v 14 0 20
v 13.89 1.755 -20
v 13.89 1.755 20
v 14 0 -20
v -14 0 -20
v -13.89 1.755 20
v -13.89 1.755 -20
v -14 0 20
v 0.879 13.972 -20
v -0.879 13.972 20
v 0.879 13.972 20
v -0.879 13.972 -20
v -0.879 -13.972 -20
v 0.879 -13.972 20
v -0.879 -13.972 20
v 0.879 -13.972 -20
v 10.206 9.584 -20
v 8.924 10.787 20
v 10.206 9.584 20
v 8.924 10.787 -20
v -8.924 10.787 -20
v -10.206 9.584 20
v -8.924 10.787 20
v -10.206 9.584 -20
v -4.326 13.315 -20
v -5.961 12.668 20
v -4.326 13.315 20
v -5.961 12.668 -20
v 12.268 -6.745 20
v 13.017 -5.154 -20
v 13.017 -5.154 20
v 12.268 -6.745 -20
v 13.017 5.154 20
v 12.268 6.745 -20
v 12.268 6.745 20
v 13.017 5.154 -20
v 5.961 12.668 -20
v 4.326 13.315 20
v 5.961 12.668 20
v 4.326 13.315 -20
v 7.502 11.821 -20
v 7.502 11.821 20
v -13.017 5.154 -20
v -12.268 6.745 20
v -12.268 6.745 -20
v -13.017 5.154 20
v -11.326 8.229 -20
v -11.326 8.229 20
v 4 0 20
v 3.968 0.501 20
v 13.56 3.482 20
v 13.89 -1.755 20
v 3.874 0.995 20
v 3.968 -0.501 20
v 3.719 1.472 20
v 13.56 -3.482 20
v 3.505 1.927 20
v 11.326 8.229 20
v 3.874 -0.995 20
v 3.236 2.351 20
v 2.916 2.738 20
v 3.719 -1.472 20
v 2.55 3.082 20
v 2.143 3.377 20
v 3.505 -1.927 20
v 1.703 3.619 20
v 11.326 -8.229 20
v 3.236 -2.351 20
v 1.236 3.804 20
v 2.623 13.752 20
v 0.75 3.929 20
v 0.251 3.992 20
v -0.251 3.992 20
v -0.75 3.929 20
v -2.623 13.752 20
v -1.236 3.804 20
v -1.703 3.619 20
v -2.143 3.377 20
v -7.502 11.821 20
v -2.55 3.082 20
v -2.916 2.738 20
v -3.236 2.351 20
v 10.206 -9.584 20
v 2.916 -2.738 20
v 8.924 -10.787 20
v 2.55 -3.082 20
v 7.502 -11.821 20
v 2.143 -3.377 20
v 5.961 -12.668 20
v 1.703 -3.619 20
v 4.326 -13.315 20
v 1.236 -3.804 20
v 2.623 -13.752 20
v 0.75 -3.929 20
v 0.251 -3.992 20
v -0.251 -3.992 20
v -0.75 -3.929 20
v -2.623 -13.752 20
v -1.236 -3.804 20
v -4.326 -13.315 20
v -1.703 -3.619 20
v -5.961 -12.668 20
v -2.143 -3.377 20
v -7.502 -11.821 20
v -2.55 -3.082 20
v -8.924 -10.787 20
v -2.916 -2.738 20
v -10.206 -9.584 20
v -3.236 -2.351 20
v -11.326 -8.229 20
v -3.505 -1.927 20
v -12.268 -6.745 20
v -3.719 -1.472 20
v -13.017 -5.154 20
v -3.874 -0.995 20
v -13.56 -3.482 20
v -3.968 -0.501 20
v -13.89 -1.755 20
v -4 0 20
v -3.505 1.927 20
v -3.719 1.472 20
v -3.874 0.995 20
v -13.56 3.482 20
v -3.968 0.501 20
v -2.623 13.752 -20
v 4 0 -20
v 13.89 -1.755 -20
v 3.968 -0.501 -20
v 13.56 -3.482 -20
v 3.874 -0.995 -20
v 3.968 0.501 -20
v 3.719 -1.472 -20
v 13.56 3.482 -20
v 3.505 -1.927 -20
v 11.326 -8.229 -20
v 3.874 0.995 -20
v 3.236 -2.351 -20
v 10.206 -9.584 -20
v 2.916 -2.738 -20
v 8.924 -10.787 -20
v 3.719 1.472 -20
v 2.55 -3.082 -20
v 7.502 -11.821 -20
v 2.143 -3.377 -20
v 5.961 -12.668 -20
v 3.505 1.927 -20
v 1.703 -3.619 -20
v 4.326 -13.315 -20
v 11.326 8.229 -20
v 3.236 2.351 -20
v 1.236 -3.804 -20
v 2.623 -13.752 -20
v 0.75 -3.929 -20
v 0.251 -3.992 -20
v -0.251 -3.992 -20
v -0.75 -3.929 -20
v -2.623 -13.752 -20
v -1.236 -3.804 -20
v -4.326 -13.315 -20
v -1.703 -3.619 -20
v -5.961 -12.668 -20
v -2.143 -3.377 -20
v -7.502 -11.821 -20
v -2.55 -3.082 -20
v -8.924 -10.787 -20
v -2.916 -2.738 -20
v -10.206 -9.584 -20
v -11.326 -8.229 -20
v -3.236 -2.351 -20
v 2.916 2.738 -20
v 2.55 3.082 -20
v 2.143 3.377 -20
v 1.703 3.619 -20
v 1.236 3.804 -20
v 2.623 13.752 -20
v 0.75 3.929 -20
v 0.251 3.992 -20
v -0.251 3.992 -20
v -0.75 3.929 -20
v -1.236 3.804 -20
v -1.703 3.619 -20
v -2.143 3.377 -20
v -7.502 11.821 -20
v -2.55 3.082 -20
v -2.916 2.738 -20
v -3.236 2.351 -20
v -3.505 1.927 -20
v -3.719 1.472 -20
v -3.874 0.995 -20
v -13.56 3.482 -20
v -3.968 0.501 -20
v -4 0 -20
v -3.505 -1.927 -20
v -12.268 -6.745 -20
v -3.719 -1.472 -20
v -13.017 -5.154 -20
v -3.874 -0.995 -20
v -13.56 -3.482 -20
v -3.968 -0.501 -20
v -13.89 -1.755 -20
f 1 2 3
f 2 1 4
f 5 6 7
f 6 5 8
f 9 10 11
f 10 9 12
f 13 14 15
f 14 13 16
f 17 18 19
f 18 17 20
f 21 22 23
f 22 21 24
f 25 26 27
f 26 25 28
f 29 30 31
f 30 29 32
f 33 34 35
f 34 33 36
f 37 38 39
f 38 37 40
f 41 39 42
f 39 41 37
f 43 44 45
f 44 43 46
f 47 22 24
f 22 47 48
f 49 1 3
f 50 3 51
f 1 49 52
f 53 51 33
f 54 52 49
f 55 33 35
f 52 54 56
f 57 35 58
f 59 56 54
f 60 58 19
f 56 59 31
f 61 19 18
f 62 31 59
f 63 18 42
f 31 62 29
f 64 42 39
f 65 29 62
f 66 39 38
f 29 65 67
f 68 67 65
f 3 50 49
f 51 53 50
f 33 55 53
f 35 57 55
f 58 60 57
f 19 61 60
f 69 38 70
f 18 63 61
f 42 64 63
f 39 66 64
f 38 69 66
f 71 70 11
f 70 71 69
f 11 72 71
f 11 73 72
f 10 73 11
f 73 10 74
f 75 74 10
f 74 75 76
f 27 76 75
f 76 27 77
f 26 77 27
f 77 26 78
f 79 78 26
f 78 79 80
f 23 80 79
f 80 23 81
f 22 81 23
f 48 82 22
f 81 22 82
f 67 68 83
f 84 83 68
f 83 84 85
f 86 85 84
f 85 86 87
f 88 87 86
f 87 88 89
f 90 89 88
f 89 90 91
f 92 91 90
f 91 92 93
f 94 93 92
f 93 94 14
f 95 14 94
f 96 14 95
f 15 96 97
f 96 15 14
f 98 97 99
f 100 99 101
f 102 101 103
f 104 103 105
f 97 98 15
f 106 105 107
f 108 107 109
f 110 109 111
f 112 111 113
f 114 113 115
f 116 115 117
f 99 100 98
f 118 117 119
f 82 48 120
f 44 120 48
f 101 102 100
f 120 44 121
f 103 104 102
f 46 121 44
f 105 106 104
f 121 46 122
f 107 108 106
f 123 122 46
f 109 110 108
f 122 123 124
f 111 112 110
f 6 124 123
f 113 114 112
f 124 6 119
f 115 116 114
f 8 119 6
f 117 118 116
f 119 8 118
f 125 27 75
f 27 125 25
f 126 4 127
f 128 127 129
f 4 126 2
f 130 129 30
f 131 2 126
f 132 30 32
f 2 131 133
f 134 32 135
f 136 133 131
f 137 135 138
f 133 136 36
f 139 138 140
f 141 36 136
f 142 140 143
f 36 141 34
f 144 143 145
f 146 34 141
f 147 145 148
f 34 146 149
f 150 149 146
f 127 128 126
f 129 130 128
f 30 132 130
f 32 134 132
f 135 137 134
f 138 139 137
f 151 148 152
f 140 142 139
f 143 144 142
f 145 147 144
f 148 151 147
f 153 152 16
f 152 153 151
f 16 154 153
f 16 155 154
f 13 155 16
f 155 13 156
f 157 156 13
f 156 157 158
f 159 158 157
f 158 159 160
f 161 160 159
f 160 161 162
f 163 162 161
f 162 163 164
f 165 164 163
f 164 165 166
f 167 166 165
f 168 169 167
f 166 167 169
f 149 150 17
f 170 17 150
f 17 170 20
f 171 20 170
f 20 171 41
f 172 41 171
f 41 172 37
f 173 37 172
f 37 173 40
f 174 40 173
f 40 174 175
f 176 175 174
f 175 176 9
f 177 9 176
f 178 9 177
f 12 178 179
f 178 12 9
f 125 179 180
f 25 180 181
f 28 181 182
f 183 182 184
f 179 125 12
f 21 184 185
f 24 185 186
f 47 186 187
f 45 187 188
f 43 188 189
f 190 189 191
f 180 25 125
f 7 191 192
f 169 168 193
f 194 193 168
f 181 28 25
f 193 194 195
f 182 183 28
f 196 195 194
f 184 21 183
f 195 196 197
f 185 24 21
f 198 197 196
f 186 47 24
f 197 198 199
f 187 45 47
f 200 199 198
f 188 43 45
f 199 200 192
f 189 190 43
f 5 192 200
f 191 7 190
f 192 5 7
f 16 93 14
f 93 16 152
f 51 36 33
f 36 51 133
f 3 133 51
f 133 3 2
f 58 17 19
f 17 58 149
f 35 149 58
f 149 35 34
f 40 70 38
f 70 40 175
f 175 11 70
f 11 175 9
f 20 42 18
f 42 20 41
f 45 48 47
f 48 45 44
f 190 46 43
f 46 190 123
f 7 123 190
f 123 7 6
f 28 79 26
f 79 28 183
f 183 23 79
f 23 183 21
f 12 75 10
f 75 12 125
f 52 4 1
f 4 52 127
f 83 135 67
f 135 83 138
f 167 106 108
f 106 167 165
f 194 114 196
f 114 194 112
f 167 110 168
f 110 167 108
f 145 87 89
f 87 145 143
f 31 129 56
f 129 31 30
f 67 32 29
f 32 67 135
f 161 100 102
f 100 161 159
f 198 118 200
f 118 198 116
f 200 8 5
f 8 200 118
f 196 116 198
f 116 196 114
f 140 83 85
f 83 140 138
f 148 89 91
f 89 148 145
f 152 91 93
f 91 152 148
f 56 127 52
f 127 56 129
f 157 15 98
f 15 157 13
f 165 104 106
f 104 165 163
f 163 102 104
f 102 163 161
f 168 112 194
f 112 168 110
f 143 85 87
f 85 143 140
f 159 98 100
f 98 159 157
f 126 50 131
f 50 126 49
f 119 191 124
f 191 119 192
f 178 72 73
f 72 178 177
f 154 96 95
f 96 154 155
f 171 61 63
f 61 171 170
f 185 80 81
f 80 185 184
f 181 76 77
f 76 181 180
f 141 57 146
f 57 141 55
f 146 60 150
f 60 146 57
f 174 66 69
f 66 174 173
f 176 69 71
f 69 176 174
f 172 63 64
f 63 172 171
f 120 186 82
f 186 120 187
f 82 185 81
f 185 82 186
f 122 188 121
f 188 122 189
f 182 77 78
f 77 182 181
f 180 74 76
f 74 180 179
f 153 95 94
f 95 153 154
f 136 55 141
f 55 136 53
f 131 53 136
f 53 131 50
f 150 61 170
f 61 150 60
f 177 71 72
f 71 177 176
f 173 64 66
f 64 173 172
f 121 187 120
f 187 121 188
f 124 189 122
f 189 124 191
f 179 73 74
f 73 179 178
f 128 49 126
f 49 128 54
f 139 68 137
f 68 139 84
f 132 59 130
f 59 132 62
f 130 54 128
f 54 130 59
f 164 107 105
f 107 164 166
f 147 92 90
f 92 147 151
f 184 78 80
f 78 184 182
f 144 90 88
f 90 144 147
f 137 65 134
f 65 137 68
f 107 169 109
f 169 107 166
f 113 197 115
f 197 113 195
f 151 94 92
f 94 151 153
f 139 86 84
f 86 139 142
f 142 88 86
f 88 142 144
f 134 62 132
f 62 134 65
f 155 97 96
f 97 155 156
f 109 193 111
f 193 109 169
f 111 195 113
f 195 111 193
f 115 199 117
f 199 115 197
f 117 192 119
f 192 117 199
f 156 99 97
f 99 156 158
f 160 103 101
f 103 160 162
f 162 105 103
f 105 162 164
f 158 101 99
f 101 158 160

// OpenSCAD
$fn = 50;


difference() {
	union() {
		translate(v = [0, 0, -20.0000000000]) {
			cylinder(h = 40, r = 14.0000000000);
		}
	}
	union() {
		translate(v = [0, 0, -100.0000000000]) {
			cylinder(h = 200, r = 4.0000000000);
		}
	}
}
